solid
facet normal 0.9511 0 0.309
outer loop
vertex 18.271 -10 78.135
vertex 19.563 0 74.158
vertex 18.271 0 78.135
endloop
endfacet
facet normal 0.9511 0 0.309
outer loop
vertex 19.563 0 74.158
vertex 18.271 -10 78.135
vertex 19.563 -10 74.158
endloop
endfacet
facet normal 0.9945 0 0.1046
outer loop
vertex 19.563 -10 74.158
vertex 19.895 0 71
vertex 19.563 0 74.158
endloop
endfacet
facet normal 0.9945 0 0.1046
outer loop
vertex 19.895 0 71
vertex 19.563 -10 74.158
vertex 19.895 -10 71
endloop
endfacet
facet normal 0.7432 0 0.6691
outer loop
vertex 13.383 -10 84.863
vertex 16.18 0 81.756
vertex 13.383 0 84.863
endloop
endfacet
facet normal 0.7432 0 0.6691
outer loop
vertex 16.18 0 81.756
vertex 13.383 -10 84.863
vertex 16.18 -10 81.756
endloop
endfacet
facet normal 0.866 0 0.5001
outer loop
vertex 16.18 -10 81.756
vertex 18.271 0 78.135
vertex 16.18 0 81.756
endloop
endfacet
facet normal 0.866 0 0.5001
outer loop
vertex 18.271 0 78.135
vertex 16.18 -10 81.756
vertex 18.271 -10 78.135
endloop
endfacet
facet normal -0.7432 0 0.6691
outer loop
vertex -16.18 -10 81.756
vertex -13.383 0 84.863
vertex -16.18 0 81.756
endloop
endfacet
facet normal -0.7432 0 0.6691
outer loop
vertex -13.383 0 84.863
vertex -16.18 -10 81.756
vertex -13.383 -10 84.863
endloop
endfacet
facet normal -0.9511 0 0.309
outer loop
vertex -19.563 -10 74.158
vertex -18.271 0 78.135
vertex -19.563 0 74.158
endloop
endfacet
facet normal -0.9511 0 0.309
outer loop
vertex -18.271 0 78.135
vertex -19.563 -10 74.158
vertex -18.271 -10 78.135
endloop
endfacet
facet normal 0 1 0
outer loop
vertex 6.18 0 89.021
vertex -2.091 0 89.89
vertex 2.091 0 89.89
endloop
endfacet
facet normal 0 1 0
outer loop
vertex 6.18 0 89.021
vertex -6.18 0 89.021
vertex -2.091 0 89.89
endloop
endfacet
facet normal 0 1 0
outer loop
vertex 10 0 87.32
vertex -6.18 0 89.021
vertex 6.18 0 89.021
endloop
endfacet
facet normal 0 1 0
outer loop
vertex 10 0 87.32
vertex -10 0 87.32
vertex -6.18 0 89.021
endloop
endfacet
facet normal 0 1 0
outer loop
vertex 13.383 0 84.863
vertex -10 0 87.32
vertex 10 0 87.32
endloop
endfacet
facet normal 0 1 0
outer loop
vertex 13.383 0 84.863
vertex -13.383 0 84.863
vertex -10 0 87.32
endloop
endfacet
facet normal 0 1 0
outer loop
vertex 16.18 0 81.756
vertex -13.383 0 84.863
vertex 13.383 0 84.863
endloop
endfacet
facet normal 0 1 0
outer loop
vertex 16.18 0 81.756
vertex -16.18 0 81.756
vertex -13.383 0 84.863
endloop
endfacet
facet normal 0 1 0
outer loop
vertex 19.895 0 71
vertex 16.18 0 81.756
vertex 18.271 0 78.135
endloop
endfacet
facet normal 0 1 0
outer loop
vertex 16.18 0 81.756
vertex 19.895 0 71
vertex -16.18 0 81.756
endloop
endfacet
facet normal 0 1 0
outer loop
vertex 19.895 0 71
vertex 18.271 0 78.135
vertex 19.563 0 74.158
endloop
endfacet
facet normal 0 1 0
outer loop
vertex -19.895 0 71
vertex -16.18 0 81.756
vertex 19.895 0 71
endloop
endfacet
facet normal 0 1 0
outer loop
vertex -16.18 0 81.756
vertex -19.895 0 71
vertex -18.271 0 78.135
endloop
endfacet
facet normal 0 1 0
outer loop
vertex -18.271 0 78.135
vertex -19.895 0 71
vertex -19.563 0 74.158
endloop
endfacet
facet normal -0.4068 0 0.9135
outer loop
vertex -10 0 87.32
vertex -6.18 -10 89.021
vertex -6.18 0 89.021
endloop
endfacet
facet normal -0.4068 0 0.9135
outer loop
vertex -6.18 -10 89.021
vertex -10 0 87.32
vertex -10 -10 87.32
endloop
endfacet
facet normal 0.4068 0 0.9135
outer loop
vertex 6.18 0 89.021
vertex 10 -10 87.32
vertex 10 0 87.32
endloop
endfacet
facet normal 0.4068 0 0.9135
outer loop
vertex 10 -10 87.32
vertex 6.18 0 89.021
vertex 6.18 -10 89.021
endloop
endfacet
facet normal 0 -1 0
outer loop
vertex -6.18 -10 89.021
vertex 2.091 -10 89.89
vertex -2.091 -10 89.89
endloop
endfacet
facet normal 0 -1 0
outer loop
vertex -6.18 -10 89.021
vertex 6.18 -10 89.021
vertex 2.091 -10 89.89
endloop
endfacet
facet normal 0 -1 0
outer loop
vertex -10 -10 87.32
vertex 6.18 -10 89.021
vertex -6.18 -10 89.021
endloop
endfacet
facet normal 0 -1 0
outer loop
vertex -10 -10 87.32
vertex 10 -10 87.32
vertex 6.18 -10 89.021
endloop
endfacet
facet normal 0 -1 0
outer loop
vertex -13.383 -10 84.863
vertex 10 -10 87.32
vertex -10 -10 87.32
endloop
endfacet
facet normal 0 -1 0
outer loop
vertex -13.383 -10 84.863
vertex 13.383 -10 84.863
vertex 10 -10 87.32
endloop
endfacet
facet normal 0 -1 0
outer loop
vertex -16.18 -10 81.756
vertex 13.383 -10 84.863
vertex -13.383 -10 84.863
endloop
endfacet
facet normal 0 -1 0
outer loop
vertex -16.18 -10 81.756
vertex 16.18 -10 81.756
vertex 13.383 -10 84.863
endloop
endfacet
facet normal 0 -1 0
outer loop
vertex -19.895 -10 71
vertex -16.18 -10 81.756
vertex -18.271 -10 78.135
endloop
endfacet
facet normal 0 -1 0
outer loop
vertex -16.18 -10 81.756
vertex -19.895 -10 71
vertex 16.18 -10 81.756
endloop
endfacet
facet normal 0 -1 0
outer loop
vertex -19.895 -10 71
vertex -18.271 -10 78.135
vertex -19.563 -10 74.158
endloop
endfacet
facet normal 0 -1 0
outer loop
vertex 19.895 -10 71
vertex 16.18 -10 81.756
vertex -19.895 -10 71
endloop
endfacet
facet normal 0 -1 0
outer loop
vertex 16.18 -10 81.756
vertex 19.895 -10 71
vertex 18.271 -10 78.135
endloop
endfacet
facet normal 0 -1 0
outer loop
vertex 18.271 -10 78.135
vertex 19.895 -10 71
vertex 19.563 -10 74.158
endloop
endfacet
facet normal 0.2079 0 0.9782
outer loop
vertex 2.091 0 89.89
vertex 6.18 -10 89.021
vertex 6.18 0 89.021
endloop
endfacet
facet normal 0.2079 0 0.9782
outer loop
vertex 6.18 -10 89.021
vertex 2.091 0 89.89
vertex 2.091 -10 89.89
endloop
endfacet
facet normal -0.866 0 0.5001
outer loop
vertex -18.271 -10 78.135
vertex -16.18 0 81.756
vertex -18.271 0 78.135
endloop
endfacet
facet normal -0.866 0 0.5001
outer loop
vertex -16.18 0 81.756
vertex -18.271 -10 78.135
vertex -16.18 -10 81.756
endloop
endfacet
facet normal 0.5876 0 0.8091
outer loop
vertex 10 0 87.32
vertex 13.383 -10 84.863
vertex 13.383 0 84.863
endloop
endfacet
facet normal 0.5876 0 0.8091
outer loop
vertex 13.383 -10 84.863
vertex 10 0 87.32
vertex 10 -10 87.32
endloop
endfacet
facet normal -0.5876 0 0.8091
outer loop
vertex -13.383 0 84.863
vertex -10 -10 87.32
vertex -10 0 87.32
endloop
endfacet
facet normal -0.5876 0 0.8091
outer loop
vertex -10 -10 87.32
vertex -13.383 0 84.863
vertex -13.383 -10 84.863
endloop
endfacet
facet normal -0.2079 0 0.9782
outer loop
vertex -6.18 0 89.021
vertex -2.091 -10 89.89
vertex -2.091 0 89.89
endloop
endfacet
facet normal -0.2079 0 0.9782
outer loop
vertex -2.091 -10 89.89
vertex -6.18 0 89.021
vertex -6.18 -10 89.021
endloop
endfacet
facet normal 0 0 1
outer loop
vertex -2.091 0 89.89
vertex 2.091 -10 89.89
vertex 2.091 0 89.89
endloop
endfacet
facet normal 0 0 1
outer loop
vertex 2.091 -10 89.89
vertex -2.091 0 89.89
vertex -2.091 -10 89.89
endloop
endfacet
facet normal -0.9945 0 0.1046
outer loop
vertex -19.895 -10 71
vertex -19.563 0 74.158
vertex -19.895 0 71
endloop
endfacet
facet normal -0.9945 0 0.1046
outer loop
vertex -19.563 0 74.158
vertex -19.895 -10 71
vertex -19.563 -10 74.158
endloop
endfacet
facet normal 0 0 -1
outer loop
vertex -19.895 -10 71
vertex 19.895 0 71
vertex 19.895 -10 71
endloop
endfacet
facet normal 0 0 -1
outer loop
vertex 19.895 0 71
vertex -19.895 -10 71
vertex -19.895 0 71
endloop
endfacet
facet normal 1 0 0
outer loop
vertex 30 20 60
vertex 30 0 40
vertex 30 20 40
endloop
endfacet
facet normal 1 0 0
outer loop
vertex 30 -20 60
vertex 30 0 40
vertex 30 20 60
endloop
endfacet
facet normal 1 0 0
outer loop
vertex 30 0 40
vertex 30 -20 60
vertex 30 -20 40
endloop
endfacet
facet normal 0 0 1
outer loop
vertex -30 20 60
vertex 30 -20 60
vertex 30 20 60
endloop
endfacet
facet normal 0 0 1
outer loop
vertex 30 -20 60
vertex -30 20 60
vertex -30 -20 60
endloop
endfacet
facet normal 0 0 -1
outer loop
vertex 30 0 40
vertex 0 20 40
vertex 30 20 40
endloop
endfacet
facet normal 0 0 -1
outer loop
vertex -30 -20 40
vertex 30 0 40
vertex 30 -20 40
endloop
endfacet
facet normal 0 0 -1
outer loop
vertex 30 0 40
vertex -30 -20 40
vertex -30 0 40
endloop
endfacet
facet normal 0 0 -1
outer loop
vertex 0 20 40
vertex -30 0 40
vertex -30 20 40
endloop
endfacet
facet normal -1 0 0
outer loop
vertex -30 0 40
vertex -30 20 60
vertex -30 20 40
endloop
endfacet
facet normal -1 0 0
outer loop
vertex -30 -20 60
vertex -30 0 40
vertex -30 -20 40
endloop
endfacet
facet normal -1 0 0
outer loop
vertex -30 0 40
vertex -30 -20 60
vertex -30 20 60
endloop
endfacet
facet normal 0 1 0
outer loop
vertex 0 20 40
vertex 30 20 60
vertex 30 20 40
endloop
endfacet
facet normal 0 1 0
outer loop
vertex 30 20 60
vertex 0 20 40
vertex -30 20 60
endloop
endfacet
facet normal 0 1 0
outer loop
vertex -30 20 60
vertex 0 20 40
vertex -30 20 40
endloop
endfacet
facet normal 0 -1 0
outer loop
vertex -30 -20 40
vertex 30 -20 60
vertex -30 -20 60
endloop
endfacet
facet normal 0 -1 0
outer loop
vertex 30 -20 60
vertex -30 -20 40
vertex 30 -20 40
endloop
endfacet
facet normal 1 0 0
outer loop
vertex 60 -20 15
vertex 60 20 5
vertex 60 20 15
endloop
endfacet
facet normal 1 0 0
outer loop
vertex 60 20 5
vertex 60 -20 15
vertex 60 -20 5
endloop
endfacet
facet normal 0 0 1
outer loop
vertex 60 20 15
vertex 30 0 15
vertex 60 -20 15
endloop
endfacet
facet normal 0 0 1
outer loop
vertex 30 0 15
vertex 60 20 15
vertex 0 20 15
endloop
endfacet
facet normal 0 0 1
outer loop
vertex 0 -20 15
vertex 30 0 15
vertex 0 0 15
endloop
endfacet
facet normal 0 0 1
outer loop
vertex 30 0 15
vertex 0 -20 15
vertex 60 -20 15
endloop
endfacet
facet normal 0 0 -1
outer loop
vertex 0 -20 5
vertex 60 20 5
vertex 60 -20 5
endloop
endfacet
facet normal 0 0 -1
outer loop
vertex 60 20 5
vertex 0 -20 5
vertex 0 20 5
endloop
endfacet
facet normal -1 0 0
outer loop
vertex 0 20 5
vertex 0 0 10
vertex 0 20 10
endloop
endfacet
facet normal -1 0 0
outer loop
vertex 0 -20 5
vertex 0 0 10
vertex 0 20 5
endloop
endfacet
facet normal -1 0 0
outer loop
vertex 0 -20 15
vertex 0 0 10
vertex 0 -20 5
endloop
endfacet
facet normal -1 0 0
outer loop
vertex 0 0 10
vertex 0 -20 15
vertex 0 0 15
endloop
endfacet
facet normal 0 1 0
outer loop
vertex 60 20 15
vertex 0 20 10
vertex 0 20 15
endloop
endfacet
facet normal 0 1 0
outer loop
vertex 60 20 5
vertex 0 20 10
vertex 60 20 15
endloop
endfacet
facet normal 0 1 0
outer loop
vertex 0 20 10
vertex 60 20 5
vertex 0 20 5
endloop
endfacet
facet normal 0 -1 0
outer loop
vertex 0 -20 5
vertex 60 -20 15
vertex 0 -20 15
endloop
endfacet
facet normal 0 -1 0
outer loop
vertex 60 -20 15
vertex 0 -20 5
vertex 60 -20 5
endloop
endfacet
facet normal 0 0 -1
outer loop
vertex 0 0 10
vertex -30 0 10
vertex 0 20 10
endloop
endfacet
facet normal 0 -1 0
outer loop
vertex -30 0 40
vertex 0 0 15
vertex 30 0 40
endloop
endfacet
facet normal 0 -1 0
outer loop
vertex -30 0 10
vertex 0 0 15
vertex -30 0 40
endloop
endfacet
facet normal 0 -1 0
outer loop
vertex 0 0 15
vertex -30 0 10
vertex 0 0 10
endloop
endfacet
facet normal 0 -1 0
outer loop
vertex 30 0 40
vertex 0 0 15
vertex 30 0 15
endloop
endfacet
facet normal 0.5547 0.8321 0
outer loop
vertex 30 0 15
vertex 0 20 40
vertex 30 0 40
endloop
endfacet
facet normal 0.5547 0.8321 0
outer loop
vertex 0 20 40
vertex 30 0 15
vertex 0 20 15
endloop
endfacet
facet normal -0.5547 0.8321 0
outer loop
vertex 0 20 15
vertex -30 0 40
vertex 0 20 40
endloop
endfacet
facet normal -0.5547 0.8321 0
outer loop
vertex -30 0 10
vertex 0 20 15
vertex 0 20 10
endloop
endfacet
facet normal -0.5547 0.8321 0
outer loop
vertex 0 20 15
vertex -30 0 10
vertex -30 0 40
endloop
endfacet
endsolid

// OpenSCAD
// Define the components

// 1. Small Triangular Pyramid
module small_triangular_pyramid(size = 15) {
    polyhedron(
        points = [[0, 0, 0], [size, 0, 0], [size / 2, size, 0], [size / 2, size / 2, size]],
        faces = [[0, 1, 2], [0, 1, 3], [1, 2, 3], [2, 0, 3]]
    );
}

// 2. Semi Cylindrical Cap
module semi_cylindrical_cap(radius = 20, height = 10) {
    difference() {
        rotate([90, 0, 0]) cylinder(r = radius, h = height);
        translate([-radius - 1, -radius - 1, -height - 1])
            cube([2 * radius + 2, radius + 2, height + 2]);
    }
}

// 3. Curved Block
module curved_block(length = 60, width = 40, height = 20) {
    difference() {
        cube([length, width, height], true);
        translate([-length / 2, -length / 2, -20])
            rotate([90, 0, 0]) cylinder(r = length / 2, h = height * 2);
    }
}

// 4. Flat Triangular Prism
module flat_triangular_prism(base = 60, height = 20, width = 40) {
    linear_extrude(height = width)
        polygon(points = [[0, 0], [base, 0], [base / 2, height]]);
}

// 5. Slightly Curved Rectangular Block
module slightly_curved_rectangular_block(length = 60, width = 40, depth = 10) {
    difference() {
        cube([length, width, depth], true);
        translate([0, -length, -depth])
            rotate([90, 0, 0]) cylinder(r = length, h = depth + 1);
    }
}

// Assembling the layers

// Layer 1: Small Triangular Pyramid (apex)
translate([0, 0, 90])
    small_triangular_pyramid(15);

// Layer 2: Semi Cylindrical Cap
translate([0, 0, 70])
    semi_cylindrical_cap(20, 10);

// Layer 3: Curved Block
translate([0, 0, 50])
    curved_block(60, 40, 20);

// Layer 4: Flat Triangular Prism and Slightly Curved Rectangular Block
translate([-30, 0, 10])
    flat_triangular_prism(60, 20, 40);

translate([30, 0, 10])
    slightly_curved_rectangular_block(60, 40, 10);
